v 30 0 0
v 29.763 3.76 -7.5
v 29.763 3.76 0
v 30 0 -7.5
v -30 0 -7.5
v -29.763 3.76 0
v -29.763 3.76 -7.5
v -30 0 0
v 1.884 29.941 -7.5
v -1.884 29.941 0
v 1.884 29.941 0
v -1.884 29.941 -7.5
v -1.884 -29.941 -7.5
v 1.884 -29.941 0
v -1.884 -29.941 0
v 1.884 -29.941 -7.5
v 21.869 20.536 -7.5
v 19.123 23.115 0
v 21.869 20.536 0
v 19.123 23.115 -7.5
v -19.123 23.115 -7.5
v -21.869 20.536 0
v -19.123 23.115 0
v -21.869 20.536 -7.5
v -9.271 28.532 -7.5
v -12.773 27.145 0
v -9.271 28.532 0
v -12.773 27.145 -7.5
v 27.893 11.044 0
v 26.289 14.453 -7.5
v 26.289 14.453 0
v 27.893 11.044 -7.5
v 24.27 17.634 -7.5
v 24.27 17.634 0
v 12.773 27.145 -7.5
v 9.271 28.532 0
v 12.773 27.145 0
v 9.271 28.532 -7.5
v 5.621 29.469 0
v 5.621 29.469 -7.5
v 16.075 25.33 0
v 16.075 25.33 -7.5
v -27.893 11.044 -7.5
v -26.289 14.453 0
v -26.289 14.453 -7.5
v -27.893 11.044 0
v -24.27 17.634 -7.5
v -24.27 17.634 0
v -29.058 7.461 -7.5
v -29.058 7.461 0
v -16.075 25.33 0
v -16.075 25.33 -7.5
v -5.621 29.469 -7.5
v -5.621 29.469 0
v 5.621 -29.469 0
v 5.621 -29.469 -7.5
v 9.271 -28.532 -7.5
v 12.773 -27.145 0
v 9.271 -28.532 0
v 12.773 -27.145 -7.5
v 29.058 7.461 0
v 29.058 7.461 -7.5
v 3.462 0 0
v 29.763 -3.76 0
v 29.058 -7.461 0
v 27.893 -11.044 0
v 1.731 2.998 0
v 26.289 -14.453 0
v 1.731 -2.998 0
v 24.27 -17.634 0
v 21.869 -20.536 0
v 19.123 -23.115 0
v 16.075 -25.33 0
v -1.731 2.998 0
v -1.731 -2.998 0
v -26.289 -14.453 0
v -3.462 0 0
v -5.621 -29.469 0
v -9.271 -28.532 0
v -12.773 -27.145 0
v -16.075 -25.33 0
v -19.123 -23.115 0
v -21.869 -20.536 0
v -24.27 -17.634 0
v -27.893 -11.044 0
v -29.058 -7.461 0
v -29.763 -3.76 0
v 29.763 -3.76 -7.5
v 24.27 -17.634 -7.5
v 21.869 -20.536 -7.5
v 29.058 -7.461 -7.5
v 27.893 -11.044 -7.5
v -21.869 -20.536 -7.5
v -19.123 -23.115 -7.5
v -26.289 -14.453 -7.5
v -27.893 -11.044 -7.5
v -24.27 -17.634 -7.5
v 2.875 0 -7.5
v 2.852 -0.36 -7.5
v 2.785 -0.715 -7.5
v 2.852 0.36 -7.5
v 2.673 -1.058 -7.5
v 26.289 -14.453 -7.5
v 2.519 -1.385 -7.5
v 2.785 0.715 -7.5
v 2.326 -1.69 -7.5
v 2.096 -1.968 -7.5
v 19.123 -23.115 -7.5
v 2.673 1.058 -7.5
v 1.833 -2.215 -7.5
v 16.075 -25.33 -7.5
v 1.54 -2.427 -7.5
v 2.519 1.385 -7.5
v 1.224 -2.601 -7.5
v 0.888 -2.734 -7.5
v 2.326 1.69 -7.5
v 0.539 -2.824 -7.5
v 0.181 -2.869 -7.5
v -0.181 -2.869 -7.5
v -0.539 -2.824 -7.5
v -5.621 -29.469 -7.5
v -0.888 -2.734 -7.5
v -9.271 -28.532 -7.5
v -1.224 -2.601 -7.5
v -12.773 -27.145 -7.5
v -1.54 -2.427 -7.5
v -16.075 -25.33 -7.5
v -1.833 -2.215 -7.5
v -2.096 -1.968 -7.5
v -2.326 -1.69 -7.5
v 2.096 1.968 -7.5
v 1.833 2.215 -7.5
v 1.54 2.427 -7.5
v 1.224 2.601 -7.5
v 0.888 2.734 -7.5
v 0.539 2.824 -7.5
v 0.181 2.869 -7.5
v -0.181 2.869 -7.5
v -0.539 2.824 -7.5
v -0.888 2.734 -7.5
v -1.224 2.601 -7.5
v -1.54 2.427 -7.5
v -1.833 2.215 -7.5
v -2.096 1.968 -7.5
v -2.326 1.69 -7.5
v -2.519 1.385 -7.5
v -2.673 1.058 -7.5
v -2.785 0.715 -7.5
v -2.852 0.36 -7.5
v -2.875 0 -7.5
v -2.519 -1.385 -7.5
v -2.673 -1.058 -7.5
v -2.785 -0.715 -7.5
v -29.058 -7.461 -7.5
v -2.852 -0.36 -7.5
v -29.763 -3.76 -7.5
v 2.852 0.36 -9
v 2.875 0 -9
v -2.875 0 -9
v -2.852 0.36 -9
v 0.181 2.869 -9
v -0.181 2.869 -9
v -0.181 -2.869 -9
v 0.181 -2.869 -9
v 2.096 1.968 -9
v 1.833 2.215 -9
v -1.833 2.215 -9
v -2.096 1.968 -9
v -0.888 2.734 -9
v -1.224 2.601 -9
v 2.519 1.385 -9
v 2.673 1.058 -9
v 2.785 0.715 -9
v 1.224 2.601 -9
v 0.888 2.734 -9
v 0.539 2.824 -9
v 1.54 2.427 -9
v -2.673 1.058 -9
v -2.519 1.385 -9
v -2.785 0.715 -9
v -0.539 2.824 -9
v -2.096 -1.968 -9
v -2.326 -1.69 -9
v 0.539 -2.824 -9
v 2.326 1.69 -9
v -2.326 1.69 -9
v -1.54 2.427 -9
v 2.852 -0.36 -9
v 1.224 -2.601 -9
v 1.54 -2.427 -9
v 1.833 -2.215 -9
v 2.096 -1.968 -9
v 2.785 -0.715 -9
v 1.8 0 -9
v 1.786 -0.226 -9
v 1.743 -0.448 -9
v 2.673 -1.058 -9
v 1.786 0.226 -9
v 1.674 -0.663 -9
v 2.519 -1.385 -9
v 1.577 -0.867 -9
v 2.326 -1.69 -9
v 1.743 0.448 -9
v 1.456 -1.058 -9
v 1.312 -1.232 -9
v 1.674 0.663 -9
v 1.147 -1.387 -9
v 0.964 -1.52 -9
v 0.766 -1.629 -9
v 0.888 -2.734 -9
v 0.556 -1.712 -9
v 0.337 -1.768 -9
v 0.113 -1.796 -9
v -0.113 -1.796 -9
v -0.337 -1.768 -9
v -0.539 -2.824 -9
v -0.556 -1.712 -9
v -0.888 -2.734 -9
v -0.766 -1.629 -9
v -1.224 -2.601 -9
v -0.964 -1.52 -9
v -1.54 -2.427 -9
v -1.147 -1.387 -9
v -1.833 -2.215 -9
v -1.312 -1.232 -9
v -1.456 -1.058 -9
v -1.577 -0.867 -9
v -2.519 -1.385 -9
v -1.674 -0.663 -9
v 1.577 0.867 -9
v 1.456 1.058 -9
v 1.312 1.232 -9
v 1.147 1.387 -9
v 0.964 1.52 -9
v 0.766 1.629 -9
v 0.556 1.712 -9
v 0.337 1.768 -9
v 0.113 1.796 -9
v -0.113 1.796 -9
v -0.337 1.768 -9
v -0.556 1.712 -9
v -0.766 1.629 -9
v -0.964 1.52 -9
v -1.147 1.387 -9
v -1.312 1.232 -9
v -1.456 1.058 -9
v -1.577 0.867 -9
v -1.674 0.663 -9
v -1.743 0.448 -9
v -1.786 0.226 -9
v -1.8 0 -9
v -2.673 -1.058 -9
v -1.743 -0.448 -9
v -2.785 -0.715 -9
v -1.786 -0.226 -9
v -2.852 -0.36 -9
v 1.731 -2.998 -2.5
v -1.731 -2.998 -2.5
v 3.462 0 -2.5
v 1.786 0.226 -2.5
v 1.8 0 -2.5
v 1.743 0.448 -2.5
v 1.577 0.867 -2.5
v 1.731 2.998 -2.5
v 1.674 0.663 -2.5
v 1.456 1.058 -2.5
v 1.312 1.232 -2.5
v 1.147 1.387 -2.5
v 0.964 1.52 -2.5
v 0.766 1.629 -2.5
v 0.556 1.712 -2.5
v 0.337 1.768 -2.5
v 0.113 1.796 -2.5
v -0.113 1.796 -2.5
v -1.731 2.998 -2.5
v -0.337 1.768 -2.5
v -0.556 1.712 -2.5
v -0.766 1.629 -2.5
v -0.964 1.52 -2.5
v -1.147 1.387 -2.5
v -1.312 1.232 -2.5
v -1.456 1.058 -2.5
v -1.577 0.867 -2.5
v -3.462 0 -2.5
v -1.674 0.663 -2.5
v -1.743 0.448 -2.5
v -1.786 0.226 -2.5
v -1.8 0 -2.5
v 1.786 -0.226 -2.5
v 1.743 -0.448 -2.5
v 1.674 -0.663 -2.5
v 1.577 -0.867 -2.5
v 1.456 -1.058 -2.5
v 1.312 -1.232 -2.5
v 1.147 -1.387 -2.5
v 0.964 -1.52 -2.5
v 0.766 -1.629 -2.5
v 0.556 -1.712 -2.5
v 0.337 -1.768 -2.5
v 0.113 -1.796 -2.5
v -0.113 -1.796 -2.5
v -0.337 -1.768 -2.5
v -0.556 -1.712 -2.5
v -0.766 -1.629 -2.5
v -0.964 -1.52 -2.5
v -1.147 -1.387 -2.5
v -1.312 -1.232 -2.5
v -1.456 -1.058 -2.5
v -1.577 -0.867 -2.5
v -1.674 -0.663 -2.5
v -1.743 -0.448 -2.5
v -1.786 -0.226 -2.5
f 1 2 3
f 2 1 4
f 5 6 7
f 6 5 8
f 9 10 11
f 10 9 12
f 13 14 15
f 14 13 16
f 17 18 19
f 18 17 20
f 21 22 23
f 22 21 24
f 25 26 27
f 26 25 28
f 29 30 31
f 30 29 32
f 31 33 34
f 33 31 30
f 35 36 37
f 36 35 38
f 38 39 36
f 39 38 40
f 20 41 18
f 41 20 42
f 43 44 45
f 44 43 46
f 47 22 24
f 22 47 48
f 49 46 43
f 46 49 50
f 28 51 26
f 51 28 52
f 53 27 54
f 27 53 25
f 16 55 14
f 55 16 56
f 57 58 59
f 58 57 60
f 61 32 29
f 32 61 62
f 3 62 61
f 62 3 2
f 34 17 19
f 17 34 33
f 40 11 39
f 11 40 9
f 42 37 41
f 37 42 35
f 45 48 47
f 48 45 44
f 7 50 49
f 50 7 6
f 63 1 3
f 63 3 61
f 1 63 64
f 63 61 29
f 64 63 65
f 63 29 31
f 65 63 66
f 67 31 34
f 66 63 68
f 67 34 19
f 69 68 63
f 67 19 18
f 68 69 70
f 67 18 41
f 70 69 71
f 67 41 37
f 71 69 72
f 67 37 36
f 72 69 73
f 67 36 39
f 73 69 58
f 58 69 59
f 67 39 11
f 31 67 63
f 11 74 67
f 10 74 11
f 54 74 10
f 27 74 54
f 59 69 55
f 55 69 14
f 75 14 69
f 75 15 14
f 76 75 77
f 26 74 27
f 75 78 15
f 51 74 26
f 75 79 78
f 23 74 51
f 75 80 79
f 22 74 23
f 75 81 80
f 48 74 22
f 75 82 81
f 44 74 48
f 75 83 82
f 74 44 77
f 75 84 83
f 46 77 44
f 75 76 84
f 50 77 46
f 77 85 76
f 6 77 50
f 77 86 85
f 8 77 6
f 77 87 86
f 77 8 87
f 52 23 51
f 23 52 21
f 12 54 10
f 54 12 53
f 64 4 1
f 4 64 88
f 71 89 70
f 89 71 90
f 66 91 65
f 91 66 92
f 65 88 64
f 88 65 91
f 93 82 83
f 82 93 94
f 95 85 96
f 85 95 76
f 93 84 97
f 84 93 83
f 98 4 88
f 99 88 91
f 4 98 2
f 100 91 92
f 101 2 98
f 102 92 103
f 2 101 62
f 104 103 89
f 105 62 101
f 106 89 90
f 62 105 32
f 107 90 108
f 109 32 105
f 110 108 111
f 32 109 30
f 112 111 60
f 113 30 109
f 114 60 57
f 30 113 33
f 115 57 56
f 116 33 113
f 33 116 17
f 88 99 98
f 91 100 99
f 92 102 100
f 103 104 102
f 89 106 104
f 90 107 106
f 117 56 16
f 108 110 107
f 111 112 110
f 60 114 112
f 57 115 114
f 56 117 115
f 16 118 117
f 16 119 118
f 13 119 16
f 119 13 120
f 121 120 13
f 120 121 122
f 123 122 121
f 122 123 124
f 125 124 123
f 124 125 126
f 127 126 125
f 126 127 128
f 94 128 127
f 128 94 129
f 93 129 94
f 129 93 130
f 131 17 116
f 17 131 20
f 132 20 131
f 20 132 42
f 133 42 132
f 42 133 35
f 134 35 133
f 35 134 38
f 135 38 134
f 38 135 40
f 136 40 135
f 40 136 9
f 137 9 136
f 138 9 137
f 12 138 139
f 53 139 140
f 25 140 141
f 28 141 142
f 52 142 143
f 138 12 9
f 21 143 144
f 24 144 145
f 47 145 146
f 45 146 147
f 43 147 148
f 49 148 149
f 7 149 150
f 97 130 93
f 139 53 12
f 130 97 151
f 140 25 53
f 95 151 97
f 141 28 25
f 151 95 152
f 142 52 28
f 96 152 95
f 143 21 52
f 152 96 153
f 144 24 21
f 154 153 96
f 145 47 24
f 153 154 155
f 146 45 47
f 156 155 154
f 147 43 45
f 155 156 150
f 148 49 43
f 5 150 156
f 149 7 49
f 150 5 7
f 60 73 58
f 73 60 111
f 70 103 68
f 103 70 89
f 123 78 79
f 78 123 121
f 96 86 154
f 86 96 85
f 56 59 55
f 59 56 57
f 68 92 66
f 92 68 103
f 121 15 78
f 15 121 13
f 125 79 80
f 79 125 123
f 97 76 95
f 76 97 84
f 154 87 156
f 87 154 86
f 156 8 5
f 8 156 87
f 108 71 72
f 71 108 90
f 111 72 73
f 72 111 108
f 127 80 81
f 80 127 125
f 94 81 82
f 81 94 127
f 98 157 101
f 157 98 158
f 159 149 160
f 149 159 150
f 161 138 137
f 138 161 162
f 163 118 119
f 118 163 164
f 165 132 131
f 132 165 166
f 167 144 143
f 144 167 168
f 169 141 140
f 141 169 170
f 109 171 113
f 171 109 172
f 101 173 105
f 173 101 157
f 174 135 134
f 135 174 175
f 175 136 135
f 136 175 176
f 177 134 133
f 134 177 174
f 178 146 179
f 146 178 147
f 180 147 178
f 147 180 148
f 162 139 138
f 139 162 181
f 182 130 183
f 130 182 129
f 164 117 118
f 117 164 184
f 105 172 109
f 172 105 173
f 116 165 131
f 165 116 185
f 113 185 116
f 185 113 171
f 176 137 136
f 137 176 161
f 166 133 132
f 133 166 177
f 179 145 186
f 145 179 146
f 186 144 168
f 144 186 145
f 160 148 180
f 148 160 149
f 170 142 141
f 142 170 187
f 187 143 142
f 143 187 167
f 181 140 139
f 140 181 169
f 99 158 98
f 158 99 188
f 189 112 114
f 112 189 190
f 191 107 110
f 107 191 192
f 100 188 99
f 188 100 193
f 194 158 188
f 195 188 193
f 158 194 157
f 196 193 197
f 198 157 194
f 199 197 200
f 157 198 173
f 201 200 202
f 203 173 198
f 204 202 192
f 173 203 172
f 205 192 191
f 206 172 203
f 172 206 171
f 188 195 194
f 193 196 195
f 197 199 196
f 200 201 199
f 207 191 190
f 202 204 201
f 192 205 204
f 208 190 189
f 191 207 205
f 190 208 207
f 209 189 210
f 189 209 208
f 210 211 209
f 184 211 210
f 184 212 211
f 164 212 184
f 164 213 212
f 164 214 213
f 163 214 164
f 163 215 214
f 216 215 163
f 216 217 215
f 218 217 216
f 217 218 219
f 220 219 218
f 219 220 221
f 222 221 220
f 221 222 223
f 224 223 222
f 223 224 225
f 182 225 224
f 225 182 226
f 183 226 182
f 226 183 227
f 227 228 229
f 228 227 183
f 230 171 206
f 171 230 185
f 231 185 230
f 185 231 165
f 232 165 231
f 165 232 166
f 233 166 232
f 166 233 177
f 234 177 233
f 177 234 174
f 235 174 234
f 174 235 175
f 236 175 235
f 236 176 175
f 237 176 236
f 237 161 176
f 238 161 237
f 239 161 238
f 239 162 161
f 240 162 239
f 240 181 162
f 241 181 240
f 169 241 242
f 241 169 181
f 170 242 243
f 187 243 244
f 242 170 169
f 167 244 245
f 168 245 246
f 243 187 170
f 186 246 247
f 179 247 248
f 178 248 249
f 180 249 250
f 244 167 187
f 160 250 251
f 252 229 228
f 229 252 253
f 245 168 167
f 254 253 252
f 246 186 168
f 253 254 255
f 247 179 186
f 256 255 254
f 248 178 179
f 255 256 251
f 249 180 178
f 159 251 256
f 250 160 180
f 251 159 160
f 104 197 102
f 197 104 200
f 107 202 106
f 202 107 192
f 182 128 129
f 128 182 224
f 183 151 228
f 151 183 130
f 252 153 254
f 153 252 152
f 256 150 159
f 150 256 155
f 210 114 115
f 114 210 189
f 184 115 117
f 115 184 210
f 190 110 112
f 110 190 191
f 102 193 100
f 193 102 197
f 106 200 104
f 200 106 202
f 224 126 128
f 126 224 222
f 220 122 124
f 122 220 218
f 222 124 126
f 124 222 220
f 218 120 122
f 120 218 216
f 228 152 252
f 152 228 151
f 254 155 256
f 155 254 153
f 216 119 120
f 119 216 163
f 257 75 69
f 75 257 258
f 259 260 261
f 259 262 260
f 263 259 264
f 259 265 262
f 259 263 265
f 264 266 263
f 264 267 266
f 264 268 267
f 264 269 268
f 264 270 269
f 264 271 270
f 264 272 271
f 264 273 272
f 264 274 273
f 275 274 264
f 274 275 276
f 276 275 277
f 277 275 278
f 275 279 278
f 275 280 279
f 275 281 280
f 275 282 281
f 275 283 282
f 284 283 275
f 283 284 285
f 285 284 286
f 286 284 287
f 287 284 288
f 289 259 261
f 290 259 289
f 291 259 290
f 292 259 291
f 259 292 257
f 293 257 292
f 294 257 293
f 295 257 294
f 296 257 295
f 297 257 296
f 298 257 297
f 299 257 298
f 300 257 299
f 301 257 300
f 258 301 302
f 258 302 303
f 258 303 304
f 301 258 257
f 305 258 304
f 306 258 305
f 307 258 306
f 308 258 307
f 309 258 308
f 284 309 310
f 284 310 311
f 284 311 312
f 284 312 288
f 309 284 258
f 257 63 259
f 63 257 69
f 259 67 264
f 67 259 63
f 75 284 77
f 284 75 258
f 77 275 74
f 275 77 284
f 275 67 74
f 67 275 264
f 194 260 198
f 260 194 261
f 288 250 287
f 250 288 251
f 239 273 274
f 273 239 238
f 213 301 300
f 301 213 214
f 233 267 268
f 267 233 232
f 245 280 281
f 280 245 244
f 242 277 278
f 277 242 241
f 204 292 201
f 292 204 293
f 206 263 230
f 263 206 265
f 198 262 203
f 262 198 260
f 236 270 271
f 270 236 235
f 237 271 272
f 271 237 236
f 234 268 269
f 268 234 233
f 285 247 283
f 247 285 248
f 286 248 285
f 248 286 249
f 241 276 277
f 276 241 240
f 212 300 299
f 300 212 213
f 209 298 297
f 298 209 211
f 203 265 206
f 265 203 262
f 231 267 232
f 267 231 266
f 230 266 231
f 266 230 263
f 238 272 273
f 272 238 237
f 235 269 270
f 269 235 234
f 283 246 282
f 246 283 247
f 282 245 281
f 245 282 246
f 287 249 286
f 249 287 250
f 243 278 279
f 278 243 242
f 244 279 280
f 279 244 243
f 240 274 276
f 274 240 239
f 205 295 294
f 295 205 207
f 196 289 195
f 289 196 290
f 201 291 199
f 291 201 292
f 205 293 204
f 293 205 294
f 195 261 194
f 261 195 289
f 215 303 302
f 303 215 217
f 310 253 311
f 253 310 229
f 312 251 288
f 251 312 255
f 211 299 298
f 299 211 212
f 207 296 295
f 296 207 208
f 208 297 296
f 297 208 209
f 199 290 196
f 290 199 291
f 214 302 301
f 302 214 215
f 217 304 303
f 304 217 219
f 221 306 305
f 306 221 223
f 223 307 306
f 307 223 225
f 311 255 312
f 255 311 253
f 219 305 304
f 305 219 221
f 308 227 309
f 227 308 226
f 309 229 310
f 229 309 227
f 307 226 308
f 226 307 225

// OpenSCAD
$fn = 50;


difference() {
	union() {
		translate(v = [0, 0, -7.5000000000]) {
			cylinder(h = 7.5000000000, r = 30.0000000000);
		}
		translate(v = [0, 0, -9.0000000000]) {
			cylinder(h = 9, r = 2.8750000000);
		}
	}
	union() {
		translate(v = [0, 0, 0]) {
			rotate(a = [0, 0, 0]) {
				difference() {
					union() {
						translate(v = [0, 0, -2.5000000000]) {
							linear_extrude(height = 2.5000000000) {
								polygon(points = [[3.4620000000, 0.0000000000], [1.7310000000, 2.9981799479], [-1.7310000000, 2.9981799479], [-3.4620000000, 0.0000000000], [-1.7310000000, -2.9981799479], [1.7310000000, -2.9981799479]]);
							}
						}
					}
					union();
				}
			}
		}
		#translate(v = [0, 0, -100.0000000000]) {
			cylinder(h = 200, r = 1.8000000000);
		}
	}
}
